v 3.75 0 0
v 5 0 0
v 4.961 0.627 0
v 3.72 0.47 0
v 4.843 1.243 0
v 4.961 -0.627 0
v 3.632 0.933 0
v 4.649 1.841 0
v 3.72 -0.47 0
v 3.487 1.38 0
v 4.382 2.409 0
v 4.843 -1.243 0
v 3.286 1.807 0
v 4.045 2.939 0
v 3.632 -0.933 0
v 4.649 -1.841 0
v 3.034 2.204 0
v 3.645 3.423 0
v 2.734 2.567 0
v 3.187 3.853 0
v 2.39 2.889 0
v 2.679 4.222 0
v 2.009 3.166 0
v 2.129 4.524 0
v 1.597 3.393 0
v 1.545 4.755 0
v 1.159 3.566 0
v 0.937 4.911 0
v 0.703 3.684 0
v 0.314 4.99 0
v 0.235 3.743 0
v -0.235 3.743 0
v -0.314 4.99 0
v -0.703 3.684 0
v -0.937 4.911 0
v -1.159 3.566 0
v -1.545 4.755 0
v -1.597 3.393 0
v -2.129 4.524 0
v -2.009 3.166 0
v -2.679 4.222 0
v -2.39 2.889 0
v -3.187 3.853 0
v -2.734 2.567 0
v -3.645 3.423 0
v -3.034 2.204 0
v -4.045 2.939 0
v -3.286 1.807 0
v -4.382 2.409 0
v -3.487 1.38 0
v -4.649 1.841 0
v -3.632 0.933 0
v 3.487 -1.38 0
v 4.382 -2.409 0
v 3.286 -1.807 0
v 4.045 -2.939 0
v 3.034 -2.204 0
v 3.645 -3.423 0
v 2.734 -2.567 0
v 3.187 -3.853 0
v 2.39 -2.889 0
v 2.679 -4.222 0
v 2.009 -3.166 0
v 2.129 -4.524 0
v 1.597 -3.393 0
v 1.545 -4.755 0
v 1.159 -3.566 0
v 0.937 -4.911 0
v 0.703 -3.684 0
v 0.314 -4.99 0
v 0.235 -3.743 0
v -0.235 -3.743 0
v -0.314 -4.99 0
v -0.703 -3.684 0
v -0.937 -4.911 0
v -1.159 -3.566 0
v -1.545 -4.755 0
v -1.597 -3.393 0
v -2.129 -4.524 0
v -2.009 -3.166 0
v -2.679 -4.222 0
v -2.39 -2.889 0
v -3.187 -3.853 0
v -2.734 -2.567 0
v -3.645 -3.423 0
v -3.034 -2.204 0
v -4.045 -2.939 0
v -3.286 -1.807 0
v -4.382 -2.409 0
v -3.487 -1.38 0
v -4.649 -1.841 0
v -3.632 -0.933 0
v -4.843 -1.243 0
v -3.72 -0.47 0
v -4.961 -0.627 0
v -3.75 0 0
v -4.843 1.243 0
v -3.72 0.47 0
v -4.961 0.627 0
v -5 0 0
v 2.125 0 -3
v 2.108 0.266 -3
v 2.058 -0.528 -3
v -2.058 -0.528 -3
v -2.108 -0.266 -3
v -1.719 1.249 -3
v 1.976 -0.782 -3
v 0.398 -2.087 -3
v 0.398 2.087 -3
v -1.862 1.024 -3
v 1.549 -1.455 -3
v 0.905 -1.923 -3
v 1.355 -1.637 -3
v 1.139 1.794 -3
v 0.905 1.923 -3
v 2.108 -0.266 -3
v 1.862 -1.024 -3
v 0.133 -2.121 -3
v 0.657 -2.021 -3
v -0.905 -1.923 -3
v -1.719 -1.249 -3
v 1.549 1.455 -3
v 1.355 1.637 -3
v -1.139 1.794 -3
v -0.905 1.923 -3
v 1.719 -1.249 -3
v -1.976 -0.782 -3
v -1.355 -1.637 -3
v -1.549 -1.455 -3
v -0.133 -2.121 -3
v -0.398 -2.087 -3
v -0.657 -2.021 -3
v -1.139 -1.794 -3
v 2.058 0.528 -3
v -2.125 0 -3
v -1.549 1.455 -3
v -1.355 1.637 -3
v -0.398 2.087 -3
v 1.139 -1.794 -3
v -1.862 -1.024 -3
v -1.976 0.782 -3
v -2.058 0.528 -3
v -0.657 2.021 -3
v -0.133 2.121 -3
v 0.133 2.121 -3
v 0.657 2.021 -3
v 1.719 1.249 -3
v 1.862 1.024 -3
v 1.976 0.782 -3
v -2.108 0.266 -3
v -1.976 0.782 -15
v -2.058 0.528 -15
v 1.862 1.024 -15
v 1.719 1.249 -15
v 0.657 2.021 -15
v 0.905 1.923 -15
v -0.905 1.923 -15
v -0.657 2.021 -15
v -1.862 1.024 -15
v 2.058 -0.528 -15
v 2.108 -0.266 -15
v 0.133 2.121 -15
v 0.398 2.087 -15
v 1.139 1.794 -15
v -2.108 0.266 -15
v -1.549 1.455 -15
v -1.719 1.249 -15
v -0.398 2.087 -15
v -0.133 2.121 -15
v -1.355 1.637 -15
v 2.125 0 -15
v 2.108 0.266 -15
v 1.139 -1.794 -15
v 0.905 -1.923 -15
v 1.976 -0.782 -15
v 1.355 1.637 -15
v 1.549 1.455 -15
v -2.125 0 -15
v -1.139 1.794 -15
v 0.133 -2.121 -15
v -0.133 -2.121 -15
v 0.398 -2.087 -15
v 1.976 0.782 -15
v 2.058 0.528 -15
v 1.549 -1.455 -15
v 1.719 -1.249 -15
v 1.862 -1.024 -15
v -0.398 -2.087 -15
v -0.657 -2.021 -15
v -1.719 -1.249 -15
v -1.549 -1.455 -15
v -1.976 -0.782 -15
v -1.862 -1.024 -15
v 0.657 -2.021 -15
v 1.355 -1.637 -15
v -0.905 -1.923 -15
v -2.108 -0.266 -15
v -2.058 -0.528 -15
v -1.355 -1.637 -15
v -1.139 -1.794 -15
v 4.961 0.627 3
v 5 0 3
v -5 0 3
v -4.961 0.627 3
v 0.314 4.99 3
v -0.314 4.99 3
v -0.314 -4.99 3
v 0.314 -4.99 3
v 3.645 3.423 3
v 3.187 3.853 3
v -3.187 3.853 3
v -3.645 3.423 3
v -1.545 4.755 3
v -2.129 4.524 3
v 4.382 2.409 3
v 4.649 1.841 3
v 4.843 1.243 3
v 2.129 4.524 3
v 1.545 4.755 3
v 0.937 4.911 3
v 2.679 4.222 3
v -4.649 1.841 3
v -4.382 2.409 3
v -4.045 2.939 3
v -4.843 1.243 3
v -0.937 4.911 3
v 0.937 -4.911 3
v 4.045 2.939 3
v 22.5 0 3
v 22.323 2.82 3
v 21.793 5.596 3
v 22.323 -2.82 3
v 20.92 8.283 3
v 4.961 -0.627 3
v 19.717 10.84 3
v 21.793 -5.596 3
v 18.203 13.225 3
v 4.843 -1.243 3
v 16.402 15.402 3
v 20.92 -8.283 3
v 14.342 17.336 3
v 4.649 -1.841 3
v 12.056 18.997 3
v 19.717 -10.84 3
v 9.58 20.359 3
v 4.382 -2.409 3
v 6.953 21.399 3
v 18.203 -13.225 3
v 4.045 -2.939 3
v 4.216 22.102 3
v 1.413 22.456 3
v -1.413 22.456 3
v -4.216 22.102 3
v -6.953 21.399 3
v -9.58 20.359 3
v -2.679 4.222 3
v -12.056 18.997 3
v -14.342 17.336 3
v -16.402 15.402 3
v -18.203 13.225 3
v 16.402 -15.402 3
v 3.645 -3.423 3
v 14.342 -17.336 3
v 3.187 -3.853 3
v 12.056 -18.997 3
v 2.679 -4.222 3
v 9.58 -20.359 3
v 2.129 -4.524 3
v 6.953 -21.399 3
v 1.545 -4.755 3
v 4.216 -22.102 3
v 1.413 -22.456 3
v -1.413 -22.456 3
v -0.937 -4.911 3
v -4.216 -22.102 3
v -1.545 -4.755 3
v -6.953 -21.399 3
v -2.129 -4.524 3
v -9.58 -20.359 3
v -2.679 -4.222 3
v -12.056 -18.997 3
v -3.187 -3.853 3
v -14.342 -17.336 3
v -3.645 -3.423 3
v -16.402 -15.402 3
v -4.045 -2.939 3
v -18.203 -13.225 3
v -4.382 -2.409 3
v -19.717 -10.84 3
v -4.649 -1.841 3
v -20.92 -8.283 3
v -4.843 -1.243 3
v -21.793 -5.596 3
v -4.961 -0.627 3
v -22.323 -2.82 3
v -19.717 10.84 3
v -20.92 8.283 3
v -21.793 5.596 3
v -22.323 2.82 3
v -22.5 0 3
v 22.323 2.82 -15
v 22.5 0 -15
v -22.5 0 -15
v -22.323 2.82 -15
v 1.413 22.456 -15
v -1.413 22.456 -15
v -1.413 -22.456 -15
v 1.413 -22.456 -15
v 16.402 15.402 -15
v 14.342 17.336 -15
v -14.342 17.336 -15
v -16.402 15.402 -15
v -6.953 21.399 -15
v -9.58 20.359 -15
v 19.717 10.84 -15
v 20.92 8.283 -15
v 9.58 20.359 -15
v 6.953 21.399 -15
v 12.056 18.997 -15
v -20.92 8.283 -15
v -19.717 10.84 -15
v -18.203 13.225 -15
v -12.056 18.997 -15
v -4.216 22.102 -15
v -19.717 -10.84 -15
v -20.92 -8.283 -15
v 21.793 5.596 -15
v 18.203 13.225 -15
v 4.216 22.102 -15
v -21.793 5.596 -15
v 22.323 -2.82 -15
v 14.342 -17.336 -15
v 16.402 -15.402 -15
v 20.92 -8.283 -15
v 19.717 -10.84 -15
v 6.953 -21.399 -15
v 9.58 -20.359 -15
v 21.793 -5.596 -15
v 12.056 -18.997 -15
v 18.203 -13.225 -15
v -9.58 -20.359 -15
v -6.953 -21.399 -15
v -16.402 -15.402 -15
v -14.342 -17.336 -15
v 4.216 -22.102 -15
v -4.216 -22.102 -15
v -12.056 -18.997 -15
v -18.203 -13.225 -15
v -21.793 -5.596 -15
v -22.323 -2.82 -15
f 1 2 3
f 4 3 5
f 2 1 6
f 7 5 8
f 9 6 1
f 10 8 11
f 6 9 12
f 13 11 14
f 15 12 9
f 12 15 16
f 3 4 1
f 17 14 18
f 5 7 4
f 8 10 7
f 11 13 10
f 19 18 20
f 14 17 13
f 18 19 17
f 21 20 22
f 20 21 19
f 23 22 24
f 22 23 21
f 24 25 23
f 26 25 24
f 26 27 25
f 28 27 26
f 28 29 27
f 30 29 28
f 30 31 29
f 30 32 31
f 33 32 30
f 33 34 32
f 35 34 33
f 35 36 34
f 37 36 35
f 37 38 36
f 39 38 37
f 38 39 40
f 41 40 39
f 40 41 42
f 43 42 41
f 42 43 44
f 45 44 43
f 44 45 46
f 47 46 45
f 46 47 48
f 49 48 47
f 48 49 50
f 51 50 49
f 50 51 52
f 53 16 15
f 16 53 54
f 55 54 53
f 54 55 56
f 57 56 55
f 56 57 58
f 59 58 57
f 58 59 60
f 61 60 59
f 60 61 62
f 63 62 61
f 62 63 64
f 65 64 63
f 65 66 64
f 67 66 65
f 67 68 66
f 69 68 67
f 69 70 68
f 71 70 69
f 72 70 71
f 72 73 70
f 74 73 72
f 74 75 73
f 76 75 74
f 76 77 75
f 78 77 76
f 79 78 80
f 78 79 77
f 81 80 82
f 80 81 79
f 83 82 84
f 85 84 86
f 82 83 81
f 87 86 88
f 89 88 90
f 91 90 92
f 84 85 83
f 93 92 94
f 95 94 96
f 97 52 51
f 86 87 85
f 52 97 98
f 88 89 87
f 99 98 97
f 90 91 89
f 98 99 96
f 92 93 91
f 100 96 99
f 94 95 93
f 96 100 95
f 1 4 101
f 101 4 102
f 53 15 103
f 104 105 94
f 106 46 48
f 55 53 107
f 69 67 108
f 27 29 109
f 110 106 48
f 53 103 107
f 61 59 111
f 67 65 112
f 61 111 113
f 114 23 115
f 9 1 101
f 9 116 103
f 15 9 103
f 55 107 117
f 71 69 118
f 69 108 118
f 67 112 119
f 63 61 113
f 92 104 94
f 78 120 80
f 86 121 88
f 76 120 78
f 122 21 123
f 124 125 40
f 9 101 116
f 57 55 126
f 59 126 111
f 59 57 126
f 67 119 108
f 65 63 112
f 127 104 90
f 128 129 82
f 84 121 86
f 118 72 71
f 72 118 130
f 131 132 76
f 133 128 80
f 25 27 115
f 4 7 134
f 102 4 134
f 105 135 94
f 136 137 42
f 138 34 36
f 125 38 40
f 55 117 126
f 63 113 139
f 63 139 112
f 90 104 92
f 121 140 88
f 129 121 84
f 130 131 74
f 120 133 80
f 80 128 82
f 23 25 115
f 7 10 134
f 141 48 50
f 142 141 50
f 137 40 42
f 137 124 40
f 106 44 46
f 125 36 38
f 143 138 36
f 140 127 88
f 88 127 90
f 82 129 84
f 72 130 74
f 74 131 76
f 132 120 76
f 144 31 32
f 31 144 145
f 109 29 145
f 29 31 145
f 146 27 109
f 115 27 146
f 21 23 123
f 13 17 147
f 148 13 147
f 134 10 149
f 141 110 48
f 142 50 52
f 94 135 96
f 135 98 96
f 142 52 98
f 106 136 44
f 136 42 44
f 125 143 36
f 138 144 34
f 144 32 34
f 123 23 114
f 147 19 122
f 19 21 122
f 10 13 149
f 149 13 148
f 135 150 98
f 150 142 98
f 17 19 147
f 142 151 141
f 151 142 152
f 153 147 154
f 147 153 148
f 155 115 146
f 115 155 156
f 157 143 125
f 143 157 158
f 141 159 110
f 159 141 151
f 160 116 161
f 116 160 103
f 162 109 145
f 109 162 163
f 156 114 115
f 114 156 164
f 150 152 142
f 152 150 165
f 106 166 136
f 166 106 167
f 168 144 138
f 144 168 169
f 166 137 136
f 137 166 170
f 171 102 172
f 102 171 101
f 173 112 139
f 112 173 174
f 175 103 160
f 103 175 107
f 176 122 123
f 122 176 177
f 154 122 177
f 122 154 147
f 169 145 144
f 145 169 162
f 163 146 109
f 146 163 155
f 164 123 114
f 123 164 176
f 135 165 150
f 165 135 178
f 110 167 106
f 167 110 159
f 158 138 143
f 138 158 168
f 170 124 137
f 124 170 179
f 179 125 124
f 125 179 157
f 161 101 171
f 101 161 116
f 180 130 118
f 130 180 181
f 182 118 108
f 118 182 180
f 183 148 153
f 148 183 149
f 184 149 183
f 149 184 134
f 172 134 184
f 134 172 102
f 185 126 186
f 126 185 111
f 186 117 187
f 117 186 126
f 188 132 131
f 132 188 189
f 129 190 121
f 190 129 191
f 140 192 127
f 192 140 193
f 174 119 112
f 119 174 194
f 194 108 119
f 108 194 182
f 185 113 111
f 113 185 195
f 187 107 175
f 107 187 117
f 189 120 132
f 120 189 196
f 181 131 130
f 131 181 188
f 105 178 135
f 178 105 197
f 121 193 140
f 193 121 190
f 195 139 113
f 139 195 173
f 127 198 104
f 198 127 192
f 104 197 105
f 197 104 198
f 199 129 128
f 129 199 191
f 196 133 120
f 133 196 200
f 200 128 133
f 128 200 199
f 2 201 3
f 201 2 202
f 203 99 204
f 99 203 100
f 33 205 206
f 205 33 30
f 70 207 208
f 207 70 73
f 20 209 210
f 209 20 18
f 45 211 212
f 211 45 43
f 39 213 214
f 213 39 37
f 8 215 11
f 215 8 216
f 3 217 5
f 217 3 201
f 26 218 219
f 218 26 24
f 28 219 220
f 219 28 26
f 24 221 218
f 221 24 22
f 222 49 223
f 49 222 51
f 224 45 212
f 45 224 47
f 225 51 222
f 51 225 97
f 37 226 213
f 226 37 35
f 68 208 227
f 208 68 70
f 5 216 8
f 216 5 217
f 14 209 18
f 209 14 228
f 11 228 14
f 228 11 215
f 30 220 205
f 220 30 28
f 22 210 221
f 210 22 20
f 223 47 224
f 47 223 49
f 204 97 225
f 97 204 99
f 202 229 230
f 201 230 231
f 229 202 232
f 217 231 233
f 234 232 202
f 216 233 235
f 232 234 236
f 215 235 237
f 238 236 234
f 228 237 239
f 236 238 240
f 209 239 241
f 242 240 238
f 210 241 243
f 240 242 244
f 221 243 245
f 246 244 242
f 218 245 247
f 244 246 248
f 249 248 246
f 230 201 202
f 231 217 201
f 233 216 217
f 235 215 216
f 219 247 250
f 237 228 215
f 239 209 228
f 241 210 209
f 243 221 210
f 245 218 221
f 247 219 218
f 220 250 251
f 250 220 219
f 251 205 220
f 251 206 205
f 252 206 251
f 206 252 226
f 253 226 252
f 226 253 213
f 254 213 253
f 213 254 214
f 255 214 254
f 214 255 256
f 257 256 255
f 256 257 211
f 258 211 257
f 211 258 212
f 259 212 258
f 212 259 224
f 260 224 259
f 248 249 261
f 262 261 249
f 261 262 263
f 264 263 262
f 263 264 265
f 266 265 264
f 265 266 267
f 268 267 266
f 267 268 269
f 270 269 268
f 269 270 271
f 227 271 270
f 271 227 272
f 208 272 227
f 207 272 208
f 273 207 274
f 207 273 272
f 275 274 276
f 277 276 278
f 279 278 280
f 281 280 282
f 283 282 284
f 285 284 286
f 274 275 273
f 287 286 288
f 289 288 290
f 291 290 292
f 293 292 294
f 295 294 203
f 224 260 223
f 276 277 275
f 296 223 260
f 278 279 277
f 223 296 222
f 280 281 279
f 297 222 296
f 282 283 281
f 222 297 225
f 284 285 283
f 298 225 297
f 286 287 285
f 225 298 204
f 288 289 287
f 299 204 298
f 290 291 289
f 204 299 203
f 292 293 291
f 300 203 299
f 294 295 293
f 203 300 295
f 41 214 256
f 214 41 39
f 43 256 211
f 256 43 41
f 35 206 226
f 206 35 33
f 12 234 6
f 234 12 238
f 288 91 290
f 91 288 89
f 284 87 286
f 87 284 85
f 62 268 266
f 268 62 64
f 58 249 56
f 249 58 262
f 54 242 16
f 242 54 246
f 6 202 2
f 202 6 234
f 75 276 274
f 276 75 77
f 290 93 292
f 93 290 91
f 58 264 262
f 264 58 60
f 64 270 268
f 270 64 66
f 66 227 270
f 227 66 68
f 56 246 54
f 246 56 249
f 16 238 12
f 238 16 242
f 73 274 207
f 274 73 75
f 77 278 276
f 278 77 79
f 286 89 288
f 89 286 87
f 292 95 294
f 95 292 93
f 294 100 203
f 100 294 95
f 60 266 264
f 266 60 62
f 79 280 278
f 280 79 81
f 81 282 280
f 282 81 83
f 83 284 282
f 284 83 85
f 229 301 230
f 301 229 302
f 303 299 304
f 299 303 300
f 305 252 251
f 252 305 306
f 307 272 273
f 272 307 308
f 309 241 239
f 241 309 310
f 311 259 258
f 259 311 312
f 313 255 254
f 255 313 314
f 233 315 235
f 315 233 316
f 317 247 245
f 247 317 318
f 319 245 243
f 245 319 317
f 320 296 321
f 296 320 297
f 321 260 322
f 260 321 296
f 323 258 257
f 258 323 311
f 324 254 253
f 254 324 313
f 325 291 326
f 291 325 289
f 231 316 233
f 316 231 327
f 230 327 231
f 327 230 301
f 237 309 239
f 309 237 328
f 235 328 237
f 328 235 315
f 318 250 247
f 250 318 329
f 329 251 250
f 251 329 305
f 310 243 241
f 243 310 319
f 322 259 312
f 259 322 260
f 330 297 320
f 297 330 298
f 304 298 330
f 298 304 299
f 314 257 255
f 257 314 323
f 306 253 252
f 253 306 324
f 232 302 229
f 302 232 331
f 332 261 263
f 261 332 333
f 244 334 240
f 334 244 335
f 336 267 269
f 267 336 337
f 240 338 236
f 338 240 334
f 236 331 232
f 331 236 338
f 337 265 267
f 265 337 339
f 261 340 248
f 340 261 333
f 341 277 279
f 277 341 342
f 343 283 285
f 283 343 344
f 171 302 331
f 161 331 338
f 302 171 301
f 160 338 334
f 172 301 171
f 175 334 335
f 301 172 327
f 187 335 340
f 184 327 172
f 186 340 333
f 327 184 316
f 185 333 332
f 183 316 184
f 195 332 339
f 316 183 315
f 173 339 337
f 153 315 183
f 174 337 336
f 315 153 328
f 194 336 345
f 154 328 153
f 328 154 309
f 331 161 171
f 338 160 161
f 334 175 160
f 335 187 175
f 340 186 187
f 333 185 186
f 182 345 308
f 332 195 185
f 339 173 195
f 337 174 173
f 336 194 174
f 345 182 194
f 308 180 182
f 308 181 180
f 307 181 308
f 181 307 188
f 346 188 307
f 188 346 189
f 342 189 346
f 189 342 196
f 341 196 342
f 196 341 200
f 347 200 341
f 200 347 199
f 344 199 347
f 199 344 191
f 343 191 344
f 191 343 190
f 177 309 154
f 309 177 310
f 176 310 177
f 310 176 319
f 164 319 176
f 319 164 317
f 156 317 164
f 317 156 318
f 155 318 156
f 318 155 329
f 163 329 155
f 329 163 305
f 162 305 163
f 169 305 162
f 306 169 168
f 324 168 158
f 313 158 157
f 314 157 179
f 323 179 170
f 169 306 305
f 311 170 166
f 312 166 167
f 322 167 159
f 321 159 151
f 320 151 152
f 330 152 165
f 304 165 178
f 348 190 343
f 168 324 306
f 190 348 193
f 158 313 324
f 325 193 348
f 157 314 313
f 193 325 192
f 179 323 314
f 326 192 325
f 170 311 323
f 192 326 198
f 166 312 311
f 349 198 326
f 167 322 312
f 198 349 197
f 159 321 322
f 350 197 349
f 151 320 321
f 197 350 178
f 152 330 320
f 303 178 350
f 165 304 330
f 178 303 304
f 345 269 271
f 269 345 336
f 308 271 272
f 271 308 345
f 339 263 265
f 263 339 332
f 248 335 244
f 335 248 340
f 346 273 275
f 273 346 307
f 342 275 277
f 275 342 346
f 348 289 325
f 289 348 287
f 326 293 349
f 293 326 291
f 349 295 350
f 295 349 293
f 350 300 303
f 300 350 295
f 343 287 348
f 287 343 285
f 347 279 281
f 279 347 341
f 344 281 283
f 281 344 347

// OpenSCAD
$fn = 50;


difference() {
	union() {
		translate(v = [0, 0, -15.0000000000]) {
			cylinder(h = 18, r = 22.5000000000);
		}
	}
	union() {
		translate(v = [0, 0, 0]) {
			rotate(a = [0, 0, 0]) {
				difference() {
					union() {
						translate(v = [0, 0, -18.0000000000]) {
							cylinder(h = 18, r = 2.0000000000);
						}
						translate(v = [0, 0, -3]) {
							cylinder(h = 3, r1 = 2.1250000000, r2 = 3.7500000000);
						}
						translate(v = [0, 0, -18.0000000000]) {
							cylinder(h = 18, r = 2.1250000000);
						}
						translate(v = [0, 0, -18.0000000000]) {
							cylinder(h = 18, r = 2.0000000000);
						}
					}
					union();
				}
			}
		}
		#cylinder(h = 3, r = 5.0000000000);
	}
}
